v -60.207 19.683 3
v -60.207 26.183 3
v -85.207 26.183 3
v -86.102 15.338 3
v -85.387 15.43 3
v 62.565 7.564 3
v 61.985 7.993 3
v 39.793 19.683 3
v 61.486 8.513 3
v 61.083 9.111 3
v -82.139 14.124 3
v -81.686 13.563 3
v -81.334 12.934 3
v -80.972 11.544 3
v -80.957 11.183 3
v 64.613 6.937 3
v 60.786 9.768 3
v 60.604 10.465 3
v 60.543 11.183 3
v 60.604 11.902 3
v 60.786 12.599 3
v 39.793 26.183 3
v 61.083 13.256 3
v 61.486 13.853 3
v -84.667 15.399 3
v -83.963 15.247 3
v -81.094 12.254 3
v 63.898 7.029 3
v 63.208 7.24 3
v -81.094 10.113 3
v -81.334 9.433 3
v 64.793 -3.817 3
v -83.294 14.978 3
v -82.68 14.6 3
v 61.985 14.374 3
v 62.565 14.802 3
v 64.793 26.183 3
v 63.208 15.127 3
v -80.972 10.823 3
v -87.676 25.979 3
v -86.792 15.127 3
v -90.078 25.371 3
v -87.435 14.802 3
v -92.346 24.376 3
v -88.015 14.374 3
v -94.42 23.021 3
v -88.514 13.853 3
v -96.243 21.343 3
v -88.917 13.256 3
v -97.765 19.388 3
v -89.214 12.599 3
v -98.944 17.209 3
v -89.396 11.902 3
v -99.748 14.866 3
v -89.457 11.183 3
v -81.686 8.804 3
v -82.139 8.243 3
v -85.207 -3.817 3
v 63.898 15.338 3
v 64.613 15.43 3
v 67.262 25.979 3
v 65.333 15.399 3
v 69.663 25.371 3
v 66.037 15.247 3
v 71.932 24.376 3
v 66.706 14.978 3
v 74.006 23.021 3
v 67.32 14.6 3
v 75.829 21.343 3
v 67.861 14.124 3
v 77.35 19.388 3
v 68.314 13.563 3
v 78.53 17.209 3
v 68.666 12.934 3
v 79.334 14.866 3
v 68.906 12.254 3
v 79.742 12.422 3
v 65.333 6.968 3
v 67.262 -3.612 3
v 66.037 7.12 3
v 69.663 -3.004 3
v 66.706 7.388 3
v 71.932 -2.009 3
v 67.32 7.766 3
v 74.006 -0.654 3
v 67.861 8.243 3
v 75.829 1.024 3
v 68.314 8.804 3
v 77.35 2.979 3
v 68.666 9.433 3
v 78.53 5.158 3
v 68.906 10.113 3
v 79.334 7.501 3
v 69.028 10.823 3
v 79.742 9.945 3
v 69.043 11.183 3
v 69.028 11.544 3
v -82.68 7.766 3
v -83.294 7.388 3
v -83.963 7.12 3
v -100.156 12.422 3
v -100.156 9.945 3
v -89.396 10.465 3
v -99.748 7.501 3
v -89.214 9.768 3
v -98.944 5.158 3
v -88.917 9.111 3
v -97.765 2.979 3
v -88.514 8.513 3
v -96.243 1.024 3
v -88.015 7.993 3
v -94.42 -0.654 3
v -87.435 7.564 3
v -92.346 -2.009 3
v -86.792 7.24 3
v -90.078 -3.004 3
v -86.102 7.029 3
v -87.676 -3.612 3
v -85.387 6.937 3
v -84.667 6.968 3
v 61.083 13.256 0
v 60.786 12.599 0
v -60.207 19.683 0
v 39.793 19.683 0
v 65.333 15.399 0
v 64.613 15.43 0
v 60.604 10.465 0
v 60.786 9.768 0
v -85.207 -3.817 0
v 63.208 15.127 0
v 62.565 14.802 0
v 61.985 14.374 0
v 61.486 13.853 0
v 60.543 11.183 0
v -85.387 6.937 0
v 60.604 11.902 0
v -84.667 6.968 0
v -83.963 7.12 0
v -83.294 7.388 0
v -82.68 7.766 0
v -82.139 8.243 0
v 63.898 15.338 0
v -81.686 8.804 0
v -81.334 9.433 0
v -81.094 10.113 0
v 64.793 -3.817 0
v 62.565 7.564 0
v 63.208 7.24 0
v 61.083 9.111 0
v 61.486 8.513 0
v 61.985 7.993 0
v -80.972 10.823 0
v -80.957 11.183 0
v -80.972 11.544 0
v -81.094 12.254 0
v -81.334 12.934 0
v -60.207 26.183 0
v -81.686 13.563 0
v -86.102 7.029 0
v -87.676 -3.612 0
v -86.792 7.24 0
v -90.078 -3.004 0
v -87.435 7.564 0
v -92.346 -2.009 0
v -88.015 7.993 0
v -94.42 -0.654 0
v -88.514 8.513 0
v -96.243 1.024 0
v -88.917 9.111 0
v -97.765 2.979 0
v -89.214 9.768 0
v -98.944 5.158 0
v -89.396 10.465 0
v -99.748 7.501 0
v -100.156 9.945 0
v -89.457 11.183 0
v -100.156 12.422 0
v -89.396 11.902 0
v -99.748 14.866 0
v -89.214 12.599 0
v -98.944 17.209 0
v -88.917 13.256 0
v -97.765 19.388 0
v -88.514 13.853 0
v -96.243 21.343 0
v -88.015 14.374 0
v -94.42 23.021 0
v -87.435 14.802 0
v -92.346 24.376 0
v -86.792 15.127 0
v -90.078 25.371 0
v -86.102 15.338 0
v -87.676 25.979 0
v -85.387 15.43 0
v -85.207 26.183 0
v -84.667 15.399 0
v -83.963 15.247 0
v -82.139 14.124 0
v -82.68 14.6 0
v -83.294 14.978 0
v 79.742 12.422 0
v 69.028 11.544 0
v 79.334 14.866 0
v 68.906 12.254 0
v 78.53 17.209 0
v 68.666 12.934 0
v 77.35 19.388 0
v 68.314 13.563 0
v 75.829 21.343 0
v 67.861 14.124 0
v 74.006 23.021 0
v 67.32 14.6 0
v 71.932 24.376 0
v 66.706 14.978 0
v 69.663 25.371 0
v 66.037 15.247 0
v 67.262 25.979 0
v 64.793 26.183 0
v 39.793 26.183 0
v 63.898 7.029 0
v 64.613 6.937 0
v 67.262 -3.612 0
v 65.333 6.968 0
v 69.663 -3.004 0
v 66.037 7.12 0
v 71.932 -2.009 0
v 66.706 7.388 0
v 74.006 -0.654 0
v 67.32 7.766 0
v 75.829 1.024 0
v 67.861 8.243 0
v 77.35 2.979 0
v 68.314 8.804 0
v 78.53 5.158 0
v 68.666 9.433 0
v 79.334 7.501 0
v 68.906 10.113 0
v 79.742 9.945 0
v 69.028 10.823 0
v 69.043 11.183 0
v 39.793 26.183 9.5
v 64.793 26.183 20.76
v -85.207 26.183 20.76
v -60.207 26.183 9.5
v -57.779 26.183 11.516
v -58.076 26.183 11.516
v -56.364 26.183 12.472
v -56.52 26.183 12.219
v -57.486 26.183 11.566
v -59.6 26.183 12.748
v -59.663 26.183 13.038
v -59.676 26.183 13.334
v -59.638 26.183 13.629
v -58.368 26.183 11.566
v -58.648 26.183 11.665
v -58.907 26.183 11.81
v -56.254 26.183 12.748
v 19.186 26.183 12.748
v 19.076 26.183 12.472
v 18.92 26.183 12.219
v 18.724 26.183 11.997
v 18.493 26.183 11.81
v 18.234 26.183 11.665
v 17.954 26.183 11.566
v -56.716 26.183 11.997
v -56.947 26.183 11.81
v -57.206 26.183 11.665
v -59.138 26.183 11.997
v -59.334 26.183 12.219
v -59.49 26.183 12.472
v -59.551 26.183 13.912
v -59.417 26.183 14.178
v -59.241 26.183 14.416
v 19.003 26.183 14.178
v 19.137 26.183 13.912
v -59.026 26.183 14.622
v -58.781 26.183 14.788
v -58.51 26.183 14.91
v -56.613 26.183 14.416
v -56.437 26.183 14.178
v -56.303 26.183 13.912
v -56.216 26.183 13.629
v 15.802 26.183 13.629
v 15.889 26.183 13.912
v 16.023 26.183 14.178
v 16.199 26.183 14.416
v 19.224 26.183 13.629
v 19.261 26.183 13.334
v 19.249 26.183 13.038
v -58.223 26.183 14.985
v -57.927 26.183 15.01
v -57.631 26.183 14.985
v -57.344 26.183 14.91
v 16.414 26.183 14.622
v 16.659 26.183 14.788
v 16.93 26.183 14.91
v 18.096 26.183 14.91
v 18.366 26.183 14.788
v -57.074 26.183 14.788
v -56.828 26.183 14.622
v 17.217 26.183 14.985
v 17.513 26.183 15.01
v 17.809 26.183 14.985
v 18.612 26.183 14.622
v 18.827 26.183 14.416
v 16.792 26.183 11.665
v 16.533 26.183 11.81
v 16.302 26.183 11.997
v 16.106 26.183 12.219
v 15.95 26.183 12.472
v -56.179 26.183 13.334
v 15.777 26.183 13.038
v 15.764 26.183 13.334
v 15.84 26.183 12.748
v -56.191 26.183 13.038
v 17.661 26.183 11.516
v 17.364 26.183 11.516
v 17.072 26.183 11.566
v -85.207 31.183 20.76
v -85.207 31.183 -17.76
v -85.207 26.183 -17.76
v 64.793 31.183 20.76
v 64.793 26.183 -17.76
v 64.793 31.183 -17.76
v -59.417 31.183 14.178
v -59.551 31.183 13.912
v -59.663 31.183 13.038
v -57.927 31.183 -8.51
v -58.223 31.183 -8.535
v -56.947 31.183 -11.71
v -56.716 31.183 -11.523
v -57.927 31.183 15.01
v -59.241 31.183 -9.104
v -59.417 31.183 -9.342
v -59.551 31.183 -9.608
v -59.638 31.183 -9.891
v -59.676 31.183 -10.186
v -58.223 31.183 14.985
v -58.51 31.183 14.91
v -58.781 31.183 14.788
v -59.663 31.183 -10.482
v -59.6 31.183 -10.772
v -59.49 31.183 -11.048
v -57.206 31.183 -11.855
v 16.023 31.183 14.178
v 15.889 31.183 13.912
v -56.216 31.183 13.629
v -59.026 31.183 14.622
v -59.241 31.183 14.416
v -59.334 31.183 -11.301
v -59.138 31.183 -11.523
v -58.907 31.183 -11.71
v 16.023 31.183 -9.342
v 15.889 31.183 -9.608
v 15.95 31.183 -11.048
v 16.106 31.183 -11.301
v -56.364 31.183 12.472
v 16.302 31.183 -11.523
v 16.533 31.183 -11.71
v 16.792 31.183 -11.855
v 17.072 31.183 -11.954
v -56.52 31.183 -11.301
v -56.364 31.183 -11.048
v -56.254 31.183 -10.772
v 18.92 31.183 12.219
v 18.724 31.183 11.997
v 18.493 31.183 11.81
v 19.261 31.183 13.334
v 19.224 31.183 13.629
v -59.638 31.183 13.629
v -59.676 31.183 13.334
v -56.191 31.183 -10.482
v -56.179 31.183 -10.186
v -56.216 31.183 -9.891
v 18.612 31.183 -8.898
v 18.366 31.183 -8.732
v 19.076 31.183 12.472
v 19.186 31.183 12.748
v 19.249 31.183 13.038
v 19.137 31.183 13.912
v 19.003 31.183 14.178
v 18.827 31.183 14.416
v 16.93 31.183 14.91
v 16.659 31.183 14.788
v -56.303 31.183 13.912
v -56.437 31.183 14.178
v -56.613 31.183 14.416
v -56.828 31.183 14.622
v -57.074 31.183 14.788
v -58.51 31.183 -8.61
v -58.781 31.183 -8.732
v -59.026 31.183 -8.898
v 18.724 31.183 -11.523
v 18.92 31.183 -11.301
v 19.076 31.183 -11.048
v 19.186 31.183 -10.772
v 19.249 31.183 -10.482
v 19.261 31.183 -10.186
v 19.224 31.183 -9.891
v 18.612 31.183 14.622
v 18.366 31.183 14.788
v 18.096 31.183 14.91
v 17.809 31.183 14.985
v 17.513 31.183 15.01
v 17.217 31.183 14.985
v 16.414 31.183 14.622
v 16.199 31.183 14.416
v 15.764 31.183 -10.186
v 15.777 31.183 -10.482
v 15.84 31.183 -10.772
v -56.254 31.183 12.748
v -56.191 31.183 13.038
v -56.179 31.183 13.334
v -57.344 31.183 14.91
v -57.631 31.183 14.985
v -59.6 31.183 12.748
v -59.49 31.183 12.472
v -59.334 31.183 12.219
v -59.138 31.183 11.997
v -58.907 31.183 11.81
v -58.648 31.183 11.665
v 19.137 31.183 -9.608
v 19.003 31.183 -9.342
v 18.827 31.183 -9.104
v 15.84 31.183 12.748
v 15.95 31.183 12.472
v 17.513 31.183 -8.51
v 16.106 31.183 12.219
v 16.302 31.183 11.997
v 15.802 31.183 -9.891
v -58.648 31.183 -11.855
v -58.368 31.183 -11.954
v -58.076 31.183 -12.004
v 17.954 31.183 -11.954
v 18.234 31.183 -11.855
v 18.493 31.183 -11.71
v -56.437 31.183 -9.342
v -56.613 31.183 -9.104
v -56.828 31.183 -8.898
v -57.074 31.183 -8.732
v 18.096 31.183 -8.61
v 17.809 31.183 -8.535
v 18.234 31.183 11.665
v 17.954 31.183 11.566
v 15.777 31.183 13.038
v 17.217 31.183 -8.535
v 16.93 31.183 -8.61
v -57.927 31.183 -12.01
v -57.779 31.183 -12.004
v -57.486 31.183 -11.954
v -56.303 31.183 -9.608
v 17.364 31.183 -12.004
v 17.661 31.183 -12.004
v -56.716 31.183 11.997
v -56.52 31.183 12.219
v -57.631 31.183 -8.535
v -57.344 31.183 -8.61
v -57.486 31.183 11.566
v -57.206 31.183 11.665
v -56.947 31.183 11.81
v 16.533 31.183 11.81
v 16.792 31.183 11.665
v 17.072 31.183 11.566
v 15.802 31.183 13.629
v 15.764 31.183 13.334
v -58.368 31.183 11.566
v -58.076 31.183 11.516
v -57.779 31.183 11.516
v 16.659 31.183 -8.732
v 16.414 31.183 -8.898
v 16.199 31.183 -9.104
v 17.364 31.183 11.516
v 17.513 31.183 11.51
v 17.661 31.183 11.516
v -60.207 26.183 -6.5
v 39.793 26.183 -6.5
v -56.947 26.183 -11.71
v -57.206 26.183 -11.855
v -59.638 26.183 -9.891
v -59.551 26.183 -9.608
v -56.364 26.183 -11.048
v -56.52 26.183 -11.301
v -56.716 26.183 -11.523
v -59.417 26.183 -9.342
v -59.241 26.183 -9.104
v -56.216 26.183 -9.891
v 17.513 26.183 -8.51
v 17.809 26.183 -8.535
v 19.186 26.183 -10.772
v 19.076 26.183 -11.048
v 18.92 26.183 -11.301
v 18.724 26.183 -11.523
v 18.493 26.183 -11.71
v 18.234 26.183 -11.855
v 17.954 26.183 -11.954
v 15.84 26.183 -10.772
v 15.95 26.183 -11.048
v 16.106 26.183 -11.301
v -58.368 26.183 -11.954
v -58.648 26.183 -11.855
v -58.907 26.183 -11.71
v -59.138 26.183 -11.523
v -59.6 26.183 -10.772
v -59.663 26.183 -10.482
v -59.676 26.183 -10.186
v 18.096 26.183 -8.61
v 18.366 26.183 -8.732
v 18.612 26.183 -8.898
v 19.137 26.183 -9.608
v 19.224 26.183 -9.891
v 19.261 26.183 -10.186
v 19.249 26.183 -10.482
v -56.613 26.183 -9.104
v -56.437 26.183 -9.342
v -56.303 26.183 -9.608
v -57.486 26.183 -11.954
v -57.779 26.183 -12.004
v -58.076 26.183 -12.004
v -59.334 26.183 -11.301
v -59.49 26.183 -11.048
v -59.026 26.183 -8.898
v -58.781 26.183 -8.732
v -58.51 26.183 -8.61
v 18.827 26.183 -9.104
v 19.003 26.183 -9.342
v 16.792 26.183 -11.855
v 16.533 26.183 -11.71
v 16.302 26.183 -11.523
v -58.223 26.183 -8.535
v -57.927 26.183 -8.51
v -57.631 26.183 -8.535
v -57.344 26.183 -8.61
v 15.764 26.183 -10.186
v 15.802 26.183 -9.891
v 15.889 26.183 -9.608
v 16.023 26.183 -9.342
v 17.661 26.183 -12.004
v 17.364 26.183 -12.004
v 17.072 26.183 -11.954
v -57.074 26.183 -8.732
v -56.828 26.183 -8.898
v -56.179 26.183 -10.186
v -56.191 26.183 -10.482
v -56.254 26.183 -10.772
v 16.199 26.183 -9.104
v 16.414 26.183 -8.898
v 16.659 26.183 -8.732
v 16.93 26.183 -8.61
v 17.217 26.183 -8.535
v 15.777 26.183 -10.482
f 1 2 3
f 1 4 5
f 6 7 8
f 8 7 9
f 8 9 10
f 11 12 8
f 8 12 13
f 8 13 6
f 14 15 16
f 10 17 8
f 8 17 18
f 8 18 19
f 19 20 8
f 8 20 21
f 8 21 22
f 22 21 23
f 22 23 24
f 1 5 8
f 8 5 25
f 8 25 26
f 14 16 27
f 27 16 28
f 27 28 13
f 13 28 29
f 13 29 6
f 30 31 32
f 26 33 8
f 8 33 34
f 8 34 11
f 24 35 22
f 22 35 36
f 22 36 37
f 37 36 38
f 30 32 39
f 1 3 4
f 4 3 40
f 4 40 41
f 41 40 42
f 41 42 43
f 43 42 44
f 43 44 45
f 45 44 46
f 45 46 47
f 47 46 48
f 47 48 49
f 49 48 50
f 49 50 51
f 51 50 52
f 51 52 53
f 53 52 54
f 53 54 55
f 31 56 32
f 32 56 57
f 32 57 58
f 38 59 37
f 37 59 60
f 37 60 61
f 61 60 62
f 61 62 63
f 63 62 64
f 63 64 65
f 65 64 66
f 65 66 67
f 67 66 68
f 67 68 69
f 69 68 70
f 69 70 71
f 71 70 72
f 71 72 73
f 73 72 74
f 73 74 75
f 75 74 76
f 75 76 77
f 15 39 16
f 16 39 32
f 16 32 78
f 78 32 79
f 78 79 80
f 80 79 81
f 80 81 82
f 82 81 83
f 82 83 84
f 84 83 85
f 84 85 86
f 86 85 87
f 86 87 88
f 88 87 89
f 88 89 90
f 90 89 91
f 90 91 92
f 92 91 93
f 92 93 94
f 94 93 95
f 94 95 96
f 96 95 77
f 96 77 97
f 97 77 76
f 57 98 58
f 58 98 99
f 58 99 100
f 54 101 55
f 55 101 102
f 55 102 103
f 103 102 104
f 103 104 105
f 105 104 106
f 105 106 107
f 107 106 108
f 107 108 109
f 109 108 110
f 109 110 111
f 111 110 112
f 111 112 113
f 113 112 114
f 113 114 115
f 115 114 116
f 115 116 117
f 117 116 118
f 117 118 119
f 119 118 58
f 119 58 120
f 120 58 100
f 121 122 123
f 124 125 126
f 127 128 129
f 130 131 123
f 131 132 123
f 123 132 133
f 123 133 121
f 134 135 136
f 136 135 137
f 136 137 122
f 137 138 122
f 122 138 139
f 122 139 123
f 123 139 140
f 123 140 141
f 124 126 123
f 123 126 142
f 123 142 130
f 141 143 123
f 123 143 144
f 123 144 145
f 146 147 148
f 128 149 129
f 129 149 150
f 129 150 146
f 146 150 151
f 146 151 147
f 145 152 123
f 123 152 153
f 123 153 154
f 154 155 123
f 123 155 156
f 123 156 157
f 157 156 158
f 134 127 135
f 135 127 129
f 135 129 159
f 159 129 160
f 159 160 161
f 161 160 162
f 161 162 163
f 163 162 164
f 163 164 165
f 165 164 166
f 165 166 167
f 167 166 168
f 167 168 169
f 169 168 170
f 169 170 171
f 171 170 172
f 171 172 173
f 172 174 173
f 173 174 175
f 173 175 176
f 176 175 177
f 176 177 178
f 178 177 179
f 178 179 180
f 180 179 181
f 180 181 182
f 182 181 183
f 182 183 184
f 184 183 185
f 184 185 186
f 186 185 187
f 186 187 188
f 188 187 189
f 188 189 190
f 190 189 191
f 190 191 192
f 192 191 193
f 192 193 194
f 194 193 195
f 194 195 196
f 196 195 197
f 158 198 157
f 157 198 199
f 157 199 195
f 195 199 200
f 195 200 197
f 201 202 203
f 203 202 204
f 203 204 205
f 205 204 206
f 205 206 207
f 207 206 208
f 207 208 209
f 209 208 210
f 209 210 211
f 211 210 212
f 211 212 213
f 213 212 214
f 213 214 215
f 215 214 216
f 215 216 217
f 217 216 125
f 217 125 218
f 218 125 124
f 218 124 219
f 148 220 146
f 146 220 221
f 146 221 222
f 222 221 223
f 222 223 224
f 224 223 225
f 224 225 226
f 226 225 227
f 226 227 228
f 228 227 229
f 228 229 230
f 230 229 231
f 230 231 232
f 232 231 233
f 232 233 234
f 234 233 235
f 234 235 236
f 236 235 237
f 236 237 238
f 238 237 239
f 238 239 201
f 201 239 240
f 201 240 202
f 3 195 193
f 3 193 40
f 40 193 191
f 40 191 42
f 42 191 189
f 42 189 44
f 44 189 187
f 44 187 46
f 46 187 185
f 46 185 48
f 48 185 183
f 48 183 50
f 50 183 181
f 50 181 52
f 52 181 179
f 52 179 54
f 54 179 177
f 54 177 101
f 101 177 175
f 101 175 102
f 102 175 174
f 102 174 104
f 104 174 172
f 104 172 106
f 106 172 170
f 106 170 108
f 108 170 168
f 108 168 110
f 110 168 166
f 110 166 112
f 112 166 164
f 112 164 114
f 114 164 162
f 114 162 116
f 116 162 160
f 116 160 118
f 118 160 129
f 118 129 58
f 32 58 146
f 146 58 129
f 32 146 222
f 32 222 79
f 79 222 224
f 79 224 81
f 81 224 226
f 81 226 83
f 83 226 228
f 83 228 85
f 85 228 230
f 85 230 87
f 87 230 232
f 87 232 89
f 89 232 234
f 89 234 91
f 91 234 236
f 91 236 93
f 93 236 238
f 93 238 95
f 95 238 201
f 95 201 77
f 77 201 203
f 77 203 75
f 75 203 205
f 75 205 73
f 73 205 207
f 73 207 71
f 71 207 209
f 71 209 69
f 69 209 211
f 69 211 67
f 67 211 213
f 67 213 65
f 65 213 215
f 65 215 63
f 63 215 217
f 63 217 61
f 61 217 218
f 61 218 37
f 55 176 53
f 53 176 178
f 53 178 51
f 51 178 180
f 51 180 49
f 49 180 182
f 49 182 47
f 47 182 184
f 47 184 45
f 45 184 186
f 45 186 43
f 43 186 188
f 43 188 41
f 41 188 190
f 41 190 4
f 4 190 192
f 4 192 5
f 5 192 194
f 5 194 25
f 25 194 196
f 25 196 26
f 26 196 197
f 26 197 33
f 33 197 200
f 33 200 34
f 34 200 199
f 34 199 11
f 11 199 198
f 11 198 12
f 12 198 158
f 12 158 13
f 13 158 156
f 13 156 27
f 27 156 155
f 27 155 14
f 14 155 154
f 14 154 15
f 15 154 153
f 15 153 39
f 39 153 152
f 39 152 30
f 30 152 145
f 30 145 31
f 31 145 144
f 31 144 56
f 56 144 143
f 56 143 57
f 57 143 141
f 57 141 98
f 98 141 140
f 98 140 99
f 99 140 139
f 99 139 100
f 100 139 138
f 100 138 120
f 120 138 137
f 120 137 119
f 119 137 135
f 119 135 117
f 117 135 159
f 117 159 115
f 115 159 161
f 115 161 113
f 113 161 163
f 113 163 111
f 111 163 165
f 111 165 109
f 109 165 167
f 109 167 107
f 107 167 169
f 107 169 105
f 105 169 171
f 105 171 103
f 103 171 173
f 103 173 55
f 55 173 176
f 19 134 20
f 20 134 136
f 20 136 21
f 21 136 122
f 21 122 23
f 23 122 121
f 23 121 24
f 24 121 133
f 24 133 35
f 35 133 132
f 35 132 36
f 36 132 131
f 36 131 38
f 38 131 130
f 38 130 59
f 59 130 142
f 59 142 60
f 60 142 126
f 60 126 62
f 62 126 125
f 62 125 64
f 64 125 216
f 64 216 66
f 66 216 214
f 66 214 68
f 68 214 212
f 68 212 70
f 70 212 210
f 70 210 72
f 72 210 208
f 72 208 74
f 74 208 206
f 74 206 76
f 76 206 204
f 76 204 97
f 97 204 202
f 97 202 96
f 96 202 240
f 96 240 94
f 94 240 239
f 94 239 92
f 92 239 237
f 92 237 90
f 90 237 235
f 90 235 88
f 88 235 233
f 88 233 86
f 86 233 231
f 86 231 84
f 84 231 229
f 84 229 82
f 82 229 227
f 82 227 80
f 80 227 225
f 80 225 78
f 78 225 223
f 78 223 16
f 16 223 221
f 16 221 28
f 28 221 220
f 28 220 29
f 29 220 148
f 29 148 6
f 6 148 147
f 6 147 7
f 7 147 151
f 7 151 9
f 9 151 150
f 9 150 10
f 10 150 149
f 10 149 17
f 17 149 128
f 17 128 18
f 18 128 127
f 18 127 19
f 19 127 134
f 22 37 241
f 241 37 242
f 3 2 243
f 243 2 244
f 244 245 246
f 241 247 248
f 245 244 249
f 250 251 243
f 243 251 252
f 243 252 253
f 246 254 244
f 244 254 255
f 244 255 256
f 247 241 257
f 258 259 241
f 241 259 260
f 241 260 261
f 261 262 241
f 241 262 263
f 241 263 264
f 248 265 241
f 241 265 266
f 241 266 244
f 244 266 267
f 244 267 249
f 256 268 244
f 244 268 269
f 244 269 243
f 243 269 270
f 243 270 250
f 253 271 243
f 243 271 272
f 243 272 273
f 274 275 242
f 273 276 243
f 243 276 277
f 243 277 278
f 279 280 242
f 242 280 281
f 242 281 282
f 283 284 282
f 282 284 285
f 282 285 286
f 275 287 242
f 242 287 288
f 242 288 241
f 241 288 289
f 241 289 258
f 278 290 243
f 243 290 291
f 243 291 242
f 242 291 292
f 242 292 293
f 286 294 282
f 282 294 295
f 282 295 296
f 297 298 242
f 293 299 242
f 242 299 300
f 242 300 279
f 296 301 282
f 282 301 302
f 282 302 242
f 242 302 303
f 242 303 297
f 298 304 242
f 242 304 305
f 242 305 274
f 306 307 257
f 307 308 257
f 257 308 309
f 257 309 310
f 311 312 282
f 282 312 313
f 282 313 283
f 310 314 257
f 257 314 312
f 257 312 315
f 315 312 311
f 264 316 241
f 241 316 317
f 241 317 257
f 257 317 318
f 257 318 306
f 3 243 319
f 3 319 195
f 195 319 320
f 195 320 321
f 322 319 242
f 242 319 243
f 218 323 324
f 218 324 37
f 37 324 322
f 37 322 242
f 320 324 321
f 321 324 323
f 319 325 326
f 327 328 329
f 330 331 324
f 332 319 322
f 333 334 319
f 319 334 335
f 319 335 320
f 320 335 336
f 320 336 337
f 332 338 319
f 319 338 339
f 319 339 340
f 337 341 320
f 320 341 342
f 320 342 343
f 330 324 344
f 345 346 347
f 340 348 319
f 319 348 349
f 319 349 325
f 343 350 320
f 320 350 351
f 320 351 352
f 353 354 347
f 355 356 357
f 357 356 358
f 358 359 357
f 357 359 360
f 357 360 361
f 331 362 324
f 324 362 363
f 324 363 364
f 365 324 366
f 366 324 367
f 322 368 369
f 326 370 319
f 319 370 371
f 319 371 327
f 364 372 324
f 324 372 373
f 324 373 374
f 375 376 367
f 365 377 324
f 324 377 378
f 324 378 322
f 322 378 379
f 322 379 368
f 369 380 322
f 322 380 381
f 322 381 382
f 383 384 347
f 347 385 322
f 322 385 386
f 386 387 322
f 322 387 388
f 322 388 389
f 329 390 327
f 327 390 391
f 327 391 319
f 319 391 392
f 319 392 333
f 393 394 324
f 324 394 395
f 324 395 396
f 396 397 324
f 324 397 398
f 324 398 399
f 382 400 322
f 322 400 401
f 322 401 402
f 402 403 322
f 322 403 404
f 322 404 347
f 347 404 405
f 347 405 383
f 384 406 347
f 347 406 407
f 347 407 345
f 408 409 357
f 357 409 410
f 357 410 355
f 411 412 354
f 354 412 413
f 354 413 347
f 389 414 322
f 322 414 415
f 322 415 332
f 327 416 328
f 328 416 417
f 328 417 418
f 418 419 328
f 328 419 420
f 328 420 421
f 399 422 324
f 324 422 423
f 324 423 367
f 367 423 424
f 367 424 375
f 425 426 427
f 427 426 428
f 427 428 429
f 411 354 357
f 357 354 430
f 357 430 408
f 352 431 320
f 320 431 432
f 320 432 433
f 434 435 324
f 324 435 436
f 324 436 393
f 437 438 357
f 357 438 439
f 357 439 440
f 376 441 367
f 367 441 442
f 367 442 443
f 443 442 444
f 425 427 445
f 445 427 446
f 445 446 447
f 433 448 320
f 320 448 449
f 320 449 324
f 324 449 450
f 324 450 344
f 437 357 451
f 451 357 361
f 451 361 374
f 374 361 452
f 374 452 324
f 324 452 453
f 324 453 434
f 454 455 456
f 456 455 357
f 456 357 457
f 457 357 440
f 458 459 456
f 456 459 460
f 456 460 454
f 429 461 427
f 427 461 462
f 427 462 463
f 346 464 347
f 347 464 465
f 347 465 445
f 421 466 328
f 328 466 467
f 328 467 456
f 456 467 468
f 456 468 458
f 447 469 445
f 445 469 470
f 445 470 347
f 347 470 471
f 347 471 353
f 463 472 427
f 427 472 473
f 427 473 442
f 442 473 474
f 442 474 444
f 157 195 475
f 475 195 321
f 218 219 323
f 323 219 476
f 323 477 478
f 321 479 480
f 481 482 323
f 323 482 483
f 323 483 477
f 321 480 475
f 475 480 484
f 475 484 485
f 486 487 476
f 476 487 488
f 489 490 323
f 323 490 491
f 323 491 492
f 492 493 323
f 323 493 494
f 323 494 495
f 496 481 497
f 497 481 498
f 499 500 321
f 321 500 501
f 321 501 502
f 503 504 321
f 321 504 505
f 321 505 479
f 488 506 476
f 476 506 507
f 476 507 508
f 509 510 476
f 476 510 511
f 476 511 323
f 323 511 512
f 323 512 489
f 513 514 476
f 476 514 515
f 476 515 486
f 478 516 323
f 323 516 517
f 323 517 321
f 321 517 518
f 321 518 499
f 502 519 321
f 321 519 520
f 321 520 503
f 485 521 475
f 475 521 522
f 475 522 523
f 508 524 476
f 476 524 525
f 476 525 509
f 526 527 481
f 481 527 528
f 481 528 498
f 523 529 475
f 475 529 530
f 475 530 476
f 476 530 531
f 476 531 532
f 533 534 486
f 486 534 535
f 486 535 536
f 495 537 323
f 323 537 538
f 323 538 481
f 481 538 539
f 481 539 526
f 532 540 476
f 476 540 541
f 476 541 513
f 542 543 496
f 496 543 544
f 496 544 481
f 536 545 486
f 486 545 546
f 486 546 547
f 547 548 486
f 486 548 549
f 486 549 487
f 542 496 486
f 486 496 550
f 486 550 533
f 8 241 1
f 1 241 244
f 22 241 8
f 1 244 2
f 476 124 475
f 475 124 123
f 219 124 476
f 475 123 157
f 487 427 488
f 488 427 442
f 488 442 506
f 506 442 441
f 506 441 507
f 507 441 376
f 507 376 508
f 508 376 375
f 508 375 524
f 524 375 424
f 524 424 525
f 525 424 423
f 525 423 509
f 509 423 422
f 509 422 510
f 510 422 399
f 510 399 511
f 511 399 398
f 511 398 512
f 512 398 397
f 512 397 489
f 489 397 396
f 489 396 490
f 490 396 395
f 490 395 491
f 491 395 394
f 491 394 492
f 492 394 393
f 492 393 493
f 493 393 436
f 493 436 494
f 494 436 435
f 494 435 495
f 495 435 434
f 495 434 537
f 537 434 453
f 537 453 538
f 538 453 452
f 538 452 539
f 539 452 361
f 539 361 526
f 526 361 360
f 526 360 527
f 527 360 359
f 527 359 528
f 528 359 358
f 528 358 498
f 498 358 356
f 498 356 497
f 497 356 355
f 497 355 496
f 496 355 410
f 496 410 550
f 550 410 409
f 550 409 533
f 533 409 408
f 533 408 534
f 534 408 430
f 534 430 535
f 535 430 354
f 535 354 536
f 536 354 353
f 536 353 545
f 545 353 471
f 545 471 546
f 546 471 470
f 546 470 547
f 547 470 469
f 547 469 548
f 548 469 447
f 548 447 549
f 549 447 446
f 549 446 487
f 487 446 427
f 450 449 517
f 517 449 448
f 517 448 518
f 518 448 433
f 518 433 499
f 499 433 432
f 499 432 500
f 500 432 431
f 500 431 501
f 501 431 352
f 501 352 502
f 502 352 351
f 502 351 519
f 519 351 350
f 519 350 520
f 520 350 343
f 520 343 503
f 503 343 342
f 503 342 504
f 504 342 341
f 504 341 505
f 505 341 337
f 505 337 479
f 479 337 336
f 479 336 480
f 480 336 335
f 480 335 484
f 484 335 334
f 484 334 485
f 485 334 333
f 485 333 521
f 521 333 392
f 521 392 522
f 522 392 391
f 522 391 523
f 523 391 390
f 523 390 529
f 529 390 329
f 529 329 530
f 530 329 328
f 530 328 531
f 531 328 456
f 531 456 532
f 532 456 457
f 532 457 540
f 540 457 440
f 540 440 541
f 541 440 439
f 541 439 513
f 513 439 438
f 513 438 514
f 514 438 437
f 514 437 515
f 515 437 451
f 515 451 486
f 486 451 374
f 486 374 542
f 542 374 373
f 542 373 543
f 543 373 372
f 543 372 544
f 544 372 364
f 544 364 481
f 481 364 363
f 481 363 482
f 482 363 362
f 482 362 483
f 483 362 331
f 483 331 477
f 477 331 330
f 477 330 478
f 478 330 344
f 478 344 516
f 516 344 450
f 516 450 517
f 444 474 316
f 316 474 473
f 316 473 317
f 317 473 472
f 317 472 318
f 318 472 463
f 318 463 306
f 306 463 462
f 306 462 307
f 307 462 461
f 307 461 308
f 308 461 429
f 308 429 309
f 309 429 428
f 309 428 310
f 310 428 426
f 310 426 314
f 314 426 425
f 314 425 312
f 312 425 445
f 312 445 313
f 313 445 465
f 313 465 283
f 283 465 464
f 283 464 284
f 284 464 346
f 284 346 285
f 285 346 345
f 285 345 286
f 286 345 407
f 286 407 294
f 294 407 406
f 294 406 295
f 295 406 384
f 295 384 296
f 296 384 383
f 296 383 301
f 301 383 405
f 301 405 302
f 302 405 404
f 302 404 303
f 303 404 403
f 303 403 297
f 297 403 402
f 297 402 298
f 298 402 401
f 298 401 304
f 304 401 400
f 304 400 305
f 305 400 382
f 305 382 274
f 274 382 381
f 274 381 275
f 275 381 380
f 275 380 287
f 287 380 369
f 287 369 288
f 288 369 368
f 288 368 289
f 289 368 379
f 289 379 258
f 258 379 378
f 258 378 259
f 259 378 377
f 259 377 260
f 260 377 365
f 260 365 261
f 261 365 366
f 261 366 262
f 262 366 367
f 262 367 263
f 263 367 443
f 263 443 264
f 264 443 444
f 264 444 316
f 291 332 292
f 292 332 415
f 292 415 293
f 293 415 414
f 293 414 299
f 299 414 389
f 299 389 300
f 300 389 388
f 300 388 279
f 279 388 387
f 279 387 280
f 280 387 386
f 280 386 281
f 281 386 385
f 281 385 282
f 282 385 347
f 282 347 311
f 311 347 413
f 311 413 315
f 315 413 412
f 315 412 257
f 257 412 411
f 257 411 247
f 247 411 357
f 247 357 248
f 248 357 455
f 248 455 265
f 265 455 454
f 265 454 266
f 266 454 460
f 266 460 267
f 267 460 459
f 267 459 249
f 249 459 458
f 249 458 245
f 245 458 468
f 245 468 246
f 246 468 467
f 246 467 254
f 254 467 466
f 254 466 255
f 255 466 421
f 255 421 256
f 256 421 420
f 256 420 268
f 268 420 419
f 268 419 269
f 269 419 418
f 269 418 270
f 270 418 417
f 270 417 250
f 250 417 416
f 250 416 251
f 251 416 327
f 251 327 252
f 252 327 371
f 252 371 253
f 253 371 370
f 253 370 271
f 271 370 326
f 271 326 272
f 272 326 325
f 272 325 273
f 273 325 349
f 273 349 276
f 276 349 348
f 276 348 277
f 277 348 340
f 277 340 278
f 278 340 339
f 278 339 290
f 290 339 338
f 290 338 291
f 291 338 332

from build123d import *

# Parameters (mm, degrees)
ESBO_O1_R                = 4.25
RESSALTO_EXTRUS_O1_DEPTH = 3
ESBO_O2_W                = 150
ESBO_O2_H                = 38.52
RESSALTO_EXTRUS_O2_DEPTH = 5
RESSALTO_EXTRUS_O3_START = -25
RESSALTO_EXTRUS_O3_DEPTH = 100
ESBO_O4_R                = 1.75
CORTE_EXTRUS_O1_DEPTH    = 10


with BuildPart() as part:
    # Esboço1 → Ressalto-extrusão1 (new body)
    with BuildSketch(Plane.XY):
        with BuildLine():
            Line((-85.207100592, 26.183431953), (64.792899408, 26.183431953))
            ThreePointArc((64.792899408, 26.183431953), (79.792899408, 11.183431953), (64.792899408, -3.816568047))
            Line((64.792899408, -3.816568047), (-85.207100592, -3.816568047))
            ThreePointArc((-85.207100592, -3.816568047), (-100.207100592, 11.183431953), (-85.207100592, 26.183431953))
        make_face()
        with Locations((-85.207100592, 11.183431953)):
            Circle(ESBO_O1_R, mode=Mode.SUBTRACT)
        with Locations((64.792899408, 11.183431953)):
            Circle(ESBO_O1_R, mode=Mode.SUBTRACT)
    extrude(amount=RESSALTO_EXTRUS_O1_DEPTH)

    # Esboço2 → Ressalto-extrusão2 (add)
    with BuildSketch(Plane(origin=(0, 26.183431953, 0), x_dir=(1, 0, 0), z_dir=(0, 1, 0))):
        with Locations((-10.207100592, -1.5)):
            Rectangle(ESBO_O2_W, ESBO_O2_H)
    extrude(amount=RESSALTO_EXTRUS_O2_DEPTH)

    # Esboço3 → Ressalto-extrusão3 (add)
    with BuildSketch(Plane.ZY.offset(85.207100592).offset(RESSALTO_EXTRUS_O3_START)):
        Polygon((3, 19.683431953), (9.5, 26.183431953), (3, 26.183431953), align=None)
        Polygon((0, 26.183431953), (0, 19.683431953), (-6.5, 26.183431953), align=None)
    extrude(amount=-RESSALTO_EXTRUS_O3_DEPTH)

    # Esboço4 → Corte-extrusão1 (cut)
    with BuildSketch(Plane(origin=(0, 31.183431953, 0), x_dir=(1, 0, 0), z_dir=(0, 1, 0))):
        with Locations(Location((17.512899408, 10.26, 0), (0, 0, 270))):
            Circle(ESBO_O4_R)
        with Locations(Location((17.512899408, -13.26, 0), (0, 0, 270))):
            Circle(ESBO_O4_R)
        with Locations(Location((-57.927100592, -13.26, 0), (0, 0, 270))):
            Circle(ESBO_O4_R)
        with Locations(Location((-57.927100592, 10.26, 0), (0, 0, 270))):
            Circle(ESBO_O4_R)
    extrude(amount=-CORTE_EXTRUS_O1_DEPTH, mode=Mode.SUBTRACT)


solid = part.part
